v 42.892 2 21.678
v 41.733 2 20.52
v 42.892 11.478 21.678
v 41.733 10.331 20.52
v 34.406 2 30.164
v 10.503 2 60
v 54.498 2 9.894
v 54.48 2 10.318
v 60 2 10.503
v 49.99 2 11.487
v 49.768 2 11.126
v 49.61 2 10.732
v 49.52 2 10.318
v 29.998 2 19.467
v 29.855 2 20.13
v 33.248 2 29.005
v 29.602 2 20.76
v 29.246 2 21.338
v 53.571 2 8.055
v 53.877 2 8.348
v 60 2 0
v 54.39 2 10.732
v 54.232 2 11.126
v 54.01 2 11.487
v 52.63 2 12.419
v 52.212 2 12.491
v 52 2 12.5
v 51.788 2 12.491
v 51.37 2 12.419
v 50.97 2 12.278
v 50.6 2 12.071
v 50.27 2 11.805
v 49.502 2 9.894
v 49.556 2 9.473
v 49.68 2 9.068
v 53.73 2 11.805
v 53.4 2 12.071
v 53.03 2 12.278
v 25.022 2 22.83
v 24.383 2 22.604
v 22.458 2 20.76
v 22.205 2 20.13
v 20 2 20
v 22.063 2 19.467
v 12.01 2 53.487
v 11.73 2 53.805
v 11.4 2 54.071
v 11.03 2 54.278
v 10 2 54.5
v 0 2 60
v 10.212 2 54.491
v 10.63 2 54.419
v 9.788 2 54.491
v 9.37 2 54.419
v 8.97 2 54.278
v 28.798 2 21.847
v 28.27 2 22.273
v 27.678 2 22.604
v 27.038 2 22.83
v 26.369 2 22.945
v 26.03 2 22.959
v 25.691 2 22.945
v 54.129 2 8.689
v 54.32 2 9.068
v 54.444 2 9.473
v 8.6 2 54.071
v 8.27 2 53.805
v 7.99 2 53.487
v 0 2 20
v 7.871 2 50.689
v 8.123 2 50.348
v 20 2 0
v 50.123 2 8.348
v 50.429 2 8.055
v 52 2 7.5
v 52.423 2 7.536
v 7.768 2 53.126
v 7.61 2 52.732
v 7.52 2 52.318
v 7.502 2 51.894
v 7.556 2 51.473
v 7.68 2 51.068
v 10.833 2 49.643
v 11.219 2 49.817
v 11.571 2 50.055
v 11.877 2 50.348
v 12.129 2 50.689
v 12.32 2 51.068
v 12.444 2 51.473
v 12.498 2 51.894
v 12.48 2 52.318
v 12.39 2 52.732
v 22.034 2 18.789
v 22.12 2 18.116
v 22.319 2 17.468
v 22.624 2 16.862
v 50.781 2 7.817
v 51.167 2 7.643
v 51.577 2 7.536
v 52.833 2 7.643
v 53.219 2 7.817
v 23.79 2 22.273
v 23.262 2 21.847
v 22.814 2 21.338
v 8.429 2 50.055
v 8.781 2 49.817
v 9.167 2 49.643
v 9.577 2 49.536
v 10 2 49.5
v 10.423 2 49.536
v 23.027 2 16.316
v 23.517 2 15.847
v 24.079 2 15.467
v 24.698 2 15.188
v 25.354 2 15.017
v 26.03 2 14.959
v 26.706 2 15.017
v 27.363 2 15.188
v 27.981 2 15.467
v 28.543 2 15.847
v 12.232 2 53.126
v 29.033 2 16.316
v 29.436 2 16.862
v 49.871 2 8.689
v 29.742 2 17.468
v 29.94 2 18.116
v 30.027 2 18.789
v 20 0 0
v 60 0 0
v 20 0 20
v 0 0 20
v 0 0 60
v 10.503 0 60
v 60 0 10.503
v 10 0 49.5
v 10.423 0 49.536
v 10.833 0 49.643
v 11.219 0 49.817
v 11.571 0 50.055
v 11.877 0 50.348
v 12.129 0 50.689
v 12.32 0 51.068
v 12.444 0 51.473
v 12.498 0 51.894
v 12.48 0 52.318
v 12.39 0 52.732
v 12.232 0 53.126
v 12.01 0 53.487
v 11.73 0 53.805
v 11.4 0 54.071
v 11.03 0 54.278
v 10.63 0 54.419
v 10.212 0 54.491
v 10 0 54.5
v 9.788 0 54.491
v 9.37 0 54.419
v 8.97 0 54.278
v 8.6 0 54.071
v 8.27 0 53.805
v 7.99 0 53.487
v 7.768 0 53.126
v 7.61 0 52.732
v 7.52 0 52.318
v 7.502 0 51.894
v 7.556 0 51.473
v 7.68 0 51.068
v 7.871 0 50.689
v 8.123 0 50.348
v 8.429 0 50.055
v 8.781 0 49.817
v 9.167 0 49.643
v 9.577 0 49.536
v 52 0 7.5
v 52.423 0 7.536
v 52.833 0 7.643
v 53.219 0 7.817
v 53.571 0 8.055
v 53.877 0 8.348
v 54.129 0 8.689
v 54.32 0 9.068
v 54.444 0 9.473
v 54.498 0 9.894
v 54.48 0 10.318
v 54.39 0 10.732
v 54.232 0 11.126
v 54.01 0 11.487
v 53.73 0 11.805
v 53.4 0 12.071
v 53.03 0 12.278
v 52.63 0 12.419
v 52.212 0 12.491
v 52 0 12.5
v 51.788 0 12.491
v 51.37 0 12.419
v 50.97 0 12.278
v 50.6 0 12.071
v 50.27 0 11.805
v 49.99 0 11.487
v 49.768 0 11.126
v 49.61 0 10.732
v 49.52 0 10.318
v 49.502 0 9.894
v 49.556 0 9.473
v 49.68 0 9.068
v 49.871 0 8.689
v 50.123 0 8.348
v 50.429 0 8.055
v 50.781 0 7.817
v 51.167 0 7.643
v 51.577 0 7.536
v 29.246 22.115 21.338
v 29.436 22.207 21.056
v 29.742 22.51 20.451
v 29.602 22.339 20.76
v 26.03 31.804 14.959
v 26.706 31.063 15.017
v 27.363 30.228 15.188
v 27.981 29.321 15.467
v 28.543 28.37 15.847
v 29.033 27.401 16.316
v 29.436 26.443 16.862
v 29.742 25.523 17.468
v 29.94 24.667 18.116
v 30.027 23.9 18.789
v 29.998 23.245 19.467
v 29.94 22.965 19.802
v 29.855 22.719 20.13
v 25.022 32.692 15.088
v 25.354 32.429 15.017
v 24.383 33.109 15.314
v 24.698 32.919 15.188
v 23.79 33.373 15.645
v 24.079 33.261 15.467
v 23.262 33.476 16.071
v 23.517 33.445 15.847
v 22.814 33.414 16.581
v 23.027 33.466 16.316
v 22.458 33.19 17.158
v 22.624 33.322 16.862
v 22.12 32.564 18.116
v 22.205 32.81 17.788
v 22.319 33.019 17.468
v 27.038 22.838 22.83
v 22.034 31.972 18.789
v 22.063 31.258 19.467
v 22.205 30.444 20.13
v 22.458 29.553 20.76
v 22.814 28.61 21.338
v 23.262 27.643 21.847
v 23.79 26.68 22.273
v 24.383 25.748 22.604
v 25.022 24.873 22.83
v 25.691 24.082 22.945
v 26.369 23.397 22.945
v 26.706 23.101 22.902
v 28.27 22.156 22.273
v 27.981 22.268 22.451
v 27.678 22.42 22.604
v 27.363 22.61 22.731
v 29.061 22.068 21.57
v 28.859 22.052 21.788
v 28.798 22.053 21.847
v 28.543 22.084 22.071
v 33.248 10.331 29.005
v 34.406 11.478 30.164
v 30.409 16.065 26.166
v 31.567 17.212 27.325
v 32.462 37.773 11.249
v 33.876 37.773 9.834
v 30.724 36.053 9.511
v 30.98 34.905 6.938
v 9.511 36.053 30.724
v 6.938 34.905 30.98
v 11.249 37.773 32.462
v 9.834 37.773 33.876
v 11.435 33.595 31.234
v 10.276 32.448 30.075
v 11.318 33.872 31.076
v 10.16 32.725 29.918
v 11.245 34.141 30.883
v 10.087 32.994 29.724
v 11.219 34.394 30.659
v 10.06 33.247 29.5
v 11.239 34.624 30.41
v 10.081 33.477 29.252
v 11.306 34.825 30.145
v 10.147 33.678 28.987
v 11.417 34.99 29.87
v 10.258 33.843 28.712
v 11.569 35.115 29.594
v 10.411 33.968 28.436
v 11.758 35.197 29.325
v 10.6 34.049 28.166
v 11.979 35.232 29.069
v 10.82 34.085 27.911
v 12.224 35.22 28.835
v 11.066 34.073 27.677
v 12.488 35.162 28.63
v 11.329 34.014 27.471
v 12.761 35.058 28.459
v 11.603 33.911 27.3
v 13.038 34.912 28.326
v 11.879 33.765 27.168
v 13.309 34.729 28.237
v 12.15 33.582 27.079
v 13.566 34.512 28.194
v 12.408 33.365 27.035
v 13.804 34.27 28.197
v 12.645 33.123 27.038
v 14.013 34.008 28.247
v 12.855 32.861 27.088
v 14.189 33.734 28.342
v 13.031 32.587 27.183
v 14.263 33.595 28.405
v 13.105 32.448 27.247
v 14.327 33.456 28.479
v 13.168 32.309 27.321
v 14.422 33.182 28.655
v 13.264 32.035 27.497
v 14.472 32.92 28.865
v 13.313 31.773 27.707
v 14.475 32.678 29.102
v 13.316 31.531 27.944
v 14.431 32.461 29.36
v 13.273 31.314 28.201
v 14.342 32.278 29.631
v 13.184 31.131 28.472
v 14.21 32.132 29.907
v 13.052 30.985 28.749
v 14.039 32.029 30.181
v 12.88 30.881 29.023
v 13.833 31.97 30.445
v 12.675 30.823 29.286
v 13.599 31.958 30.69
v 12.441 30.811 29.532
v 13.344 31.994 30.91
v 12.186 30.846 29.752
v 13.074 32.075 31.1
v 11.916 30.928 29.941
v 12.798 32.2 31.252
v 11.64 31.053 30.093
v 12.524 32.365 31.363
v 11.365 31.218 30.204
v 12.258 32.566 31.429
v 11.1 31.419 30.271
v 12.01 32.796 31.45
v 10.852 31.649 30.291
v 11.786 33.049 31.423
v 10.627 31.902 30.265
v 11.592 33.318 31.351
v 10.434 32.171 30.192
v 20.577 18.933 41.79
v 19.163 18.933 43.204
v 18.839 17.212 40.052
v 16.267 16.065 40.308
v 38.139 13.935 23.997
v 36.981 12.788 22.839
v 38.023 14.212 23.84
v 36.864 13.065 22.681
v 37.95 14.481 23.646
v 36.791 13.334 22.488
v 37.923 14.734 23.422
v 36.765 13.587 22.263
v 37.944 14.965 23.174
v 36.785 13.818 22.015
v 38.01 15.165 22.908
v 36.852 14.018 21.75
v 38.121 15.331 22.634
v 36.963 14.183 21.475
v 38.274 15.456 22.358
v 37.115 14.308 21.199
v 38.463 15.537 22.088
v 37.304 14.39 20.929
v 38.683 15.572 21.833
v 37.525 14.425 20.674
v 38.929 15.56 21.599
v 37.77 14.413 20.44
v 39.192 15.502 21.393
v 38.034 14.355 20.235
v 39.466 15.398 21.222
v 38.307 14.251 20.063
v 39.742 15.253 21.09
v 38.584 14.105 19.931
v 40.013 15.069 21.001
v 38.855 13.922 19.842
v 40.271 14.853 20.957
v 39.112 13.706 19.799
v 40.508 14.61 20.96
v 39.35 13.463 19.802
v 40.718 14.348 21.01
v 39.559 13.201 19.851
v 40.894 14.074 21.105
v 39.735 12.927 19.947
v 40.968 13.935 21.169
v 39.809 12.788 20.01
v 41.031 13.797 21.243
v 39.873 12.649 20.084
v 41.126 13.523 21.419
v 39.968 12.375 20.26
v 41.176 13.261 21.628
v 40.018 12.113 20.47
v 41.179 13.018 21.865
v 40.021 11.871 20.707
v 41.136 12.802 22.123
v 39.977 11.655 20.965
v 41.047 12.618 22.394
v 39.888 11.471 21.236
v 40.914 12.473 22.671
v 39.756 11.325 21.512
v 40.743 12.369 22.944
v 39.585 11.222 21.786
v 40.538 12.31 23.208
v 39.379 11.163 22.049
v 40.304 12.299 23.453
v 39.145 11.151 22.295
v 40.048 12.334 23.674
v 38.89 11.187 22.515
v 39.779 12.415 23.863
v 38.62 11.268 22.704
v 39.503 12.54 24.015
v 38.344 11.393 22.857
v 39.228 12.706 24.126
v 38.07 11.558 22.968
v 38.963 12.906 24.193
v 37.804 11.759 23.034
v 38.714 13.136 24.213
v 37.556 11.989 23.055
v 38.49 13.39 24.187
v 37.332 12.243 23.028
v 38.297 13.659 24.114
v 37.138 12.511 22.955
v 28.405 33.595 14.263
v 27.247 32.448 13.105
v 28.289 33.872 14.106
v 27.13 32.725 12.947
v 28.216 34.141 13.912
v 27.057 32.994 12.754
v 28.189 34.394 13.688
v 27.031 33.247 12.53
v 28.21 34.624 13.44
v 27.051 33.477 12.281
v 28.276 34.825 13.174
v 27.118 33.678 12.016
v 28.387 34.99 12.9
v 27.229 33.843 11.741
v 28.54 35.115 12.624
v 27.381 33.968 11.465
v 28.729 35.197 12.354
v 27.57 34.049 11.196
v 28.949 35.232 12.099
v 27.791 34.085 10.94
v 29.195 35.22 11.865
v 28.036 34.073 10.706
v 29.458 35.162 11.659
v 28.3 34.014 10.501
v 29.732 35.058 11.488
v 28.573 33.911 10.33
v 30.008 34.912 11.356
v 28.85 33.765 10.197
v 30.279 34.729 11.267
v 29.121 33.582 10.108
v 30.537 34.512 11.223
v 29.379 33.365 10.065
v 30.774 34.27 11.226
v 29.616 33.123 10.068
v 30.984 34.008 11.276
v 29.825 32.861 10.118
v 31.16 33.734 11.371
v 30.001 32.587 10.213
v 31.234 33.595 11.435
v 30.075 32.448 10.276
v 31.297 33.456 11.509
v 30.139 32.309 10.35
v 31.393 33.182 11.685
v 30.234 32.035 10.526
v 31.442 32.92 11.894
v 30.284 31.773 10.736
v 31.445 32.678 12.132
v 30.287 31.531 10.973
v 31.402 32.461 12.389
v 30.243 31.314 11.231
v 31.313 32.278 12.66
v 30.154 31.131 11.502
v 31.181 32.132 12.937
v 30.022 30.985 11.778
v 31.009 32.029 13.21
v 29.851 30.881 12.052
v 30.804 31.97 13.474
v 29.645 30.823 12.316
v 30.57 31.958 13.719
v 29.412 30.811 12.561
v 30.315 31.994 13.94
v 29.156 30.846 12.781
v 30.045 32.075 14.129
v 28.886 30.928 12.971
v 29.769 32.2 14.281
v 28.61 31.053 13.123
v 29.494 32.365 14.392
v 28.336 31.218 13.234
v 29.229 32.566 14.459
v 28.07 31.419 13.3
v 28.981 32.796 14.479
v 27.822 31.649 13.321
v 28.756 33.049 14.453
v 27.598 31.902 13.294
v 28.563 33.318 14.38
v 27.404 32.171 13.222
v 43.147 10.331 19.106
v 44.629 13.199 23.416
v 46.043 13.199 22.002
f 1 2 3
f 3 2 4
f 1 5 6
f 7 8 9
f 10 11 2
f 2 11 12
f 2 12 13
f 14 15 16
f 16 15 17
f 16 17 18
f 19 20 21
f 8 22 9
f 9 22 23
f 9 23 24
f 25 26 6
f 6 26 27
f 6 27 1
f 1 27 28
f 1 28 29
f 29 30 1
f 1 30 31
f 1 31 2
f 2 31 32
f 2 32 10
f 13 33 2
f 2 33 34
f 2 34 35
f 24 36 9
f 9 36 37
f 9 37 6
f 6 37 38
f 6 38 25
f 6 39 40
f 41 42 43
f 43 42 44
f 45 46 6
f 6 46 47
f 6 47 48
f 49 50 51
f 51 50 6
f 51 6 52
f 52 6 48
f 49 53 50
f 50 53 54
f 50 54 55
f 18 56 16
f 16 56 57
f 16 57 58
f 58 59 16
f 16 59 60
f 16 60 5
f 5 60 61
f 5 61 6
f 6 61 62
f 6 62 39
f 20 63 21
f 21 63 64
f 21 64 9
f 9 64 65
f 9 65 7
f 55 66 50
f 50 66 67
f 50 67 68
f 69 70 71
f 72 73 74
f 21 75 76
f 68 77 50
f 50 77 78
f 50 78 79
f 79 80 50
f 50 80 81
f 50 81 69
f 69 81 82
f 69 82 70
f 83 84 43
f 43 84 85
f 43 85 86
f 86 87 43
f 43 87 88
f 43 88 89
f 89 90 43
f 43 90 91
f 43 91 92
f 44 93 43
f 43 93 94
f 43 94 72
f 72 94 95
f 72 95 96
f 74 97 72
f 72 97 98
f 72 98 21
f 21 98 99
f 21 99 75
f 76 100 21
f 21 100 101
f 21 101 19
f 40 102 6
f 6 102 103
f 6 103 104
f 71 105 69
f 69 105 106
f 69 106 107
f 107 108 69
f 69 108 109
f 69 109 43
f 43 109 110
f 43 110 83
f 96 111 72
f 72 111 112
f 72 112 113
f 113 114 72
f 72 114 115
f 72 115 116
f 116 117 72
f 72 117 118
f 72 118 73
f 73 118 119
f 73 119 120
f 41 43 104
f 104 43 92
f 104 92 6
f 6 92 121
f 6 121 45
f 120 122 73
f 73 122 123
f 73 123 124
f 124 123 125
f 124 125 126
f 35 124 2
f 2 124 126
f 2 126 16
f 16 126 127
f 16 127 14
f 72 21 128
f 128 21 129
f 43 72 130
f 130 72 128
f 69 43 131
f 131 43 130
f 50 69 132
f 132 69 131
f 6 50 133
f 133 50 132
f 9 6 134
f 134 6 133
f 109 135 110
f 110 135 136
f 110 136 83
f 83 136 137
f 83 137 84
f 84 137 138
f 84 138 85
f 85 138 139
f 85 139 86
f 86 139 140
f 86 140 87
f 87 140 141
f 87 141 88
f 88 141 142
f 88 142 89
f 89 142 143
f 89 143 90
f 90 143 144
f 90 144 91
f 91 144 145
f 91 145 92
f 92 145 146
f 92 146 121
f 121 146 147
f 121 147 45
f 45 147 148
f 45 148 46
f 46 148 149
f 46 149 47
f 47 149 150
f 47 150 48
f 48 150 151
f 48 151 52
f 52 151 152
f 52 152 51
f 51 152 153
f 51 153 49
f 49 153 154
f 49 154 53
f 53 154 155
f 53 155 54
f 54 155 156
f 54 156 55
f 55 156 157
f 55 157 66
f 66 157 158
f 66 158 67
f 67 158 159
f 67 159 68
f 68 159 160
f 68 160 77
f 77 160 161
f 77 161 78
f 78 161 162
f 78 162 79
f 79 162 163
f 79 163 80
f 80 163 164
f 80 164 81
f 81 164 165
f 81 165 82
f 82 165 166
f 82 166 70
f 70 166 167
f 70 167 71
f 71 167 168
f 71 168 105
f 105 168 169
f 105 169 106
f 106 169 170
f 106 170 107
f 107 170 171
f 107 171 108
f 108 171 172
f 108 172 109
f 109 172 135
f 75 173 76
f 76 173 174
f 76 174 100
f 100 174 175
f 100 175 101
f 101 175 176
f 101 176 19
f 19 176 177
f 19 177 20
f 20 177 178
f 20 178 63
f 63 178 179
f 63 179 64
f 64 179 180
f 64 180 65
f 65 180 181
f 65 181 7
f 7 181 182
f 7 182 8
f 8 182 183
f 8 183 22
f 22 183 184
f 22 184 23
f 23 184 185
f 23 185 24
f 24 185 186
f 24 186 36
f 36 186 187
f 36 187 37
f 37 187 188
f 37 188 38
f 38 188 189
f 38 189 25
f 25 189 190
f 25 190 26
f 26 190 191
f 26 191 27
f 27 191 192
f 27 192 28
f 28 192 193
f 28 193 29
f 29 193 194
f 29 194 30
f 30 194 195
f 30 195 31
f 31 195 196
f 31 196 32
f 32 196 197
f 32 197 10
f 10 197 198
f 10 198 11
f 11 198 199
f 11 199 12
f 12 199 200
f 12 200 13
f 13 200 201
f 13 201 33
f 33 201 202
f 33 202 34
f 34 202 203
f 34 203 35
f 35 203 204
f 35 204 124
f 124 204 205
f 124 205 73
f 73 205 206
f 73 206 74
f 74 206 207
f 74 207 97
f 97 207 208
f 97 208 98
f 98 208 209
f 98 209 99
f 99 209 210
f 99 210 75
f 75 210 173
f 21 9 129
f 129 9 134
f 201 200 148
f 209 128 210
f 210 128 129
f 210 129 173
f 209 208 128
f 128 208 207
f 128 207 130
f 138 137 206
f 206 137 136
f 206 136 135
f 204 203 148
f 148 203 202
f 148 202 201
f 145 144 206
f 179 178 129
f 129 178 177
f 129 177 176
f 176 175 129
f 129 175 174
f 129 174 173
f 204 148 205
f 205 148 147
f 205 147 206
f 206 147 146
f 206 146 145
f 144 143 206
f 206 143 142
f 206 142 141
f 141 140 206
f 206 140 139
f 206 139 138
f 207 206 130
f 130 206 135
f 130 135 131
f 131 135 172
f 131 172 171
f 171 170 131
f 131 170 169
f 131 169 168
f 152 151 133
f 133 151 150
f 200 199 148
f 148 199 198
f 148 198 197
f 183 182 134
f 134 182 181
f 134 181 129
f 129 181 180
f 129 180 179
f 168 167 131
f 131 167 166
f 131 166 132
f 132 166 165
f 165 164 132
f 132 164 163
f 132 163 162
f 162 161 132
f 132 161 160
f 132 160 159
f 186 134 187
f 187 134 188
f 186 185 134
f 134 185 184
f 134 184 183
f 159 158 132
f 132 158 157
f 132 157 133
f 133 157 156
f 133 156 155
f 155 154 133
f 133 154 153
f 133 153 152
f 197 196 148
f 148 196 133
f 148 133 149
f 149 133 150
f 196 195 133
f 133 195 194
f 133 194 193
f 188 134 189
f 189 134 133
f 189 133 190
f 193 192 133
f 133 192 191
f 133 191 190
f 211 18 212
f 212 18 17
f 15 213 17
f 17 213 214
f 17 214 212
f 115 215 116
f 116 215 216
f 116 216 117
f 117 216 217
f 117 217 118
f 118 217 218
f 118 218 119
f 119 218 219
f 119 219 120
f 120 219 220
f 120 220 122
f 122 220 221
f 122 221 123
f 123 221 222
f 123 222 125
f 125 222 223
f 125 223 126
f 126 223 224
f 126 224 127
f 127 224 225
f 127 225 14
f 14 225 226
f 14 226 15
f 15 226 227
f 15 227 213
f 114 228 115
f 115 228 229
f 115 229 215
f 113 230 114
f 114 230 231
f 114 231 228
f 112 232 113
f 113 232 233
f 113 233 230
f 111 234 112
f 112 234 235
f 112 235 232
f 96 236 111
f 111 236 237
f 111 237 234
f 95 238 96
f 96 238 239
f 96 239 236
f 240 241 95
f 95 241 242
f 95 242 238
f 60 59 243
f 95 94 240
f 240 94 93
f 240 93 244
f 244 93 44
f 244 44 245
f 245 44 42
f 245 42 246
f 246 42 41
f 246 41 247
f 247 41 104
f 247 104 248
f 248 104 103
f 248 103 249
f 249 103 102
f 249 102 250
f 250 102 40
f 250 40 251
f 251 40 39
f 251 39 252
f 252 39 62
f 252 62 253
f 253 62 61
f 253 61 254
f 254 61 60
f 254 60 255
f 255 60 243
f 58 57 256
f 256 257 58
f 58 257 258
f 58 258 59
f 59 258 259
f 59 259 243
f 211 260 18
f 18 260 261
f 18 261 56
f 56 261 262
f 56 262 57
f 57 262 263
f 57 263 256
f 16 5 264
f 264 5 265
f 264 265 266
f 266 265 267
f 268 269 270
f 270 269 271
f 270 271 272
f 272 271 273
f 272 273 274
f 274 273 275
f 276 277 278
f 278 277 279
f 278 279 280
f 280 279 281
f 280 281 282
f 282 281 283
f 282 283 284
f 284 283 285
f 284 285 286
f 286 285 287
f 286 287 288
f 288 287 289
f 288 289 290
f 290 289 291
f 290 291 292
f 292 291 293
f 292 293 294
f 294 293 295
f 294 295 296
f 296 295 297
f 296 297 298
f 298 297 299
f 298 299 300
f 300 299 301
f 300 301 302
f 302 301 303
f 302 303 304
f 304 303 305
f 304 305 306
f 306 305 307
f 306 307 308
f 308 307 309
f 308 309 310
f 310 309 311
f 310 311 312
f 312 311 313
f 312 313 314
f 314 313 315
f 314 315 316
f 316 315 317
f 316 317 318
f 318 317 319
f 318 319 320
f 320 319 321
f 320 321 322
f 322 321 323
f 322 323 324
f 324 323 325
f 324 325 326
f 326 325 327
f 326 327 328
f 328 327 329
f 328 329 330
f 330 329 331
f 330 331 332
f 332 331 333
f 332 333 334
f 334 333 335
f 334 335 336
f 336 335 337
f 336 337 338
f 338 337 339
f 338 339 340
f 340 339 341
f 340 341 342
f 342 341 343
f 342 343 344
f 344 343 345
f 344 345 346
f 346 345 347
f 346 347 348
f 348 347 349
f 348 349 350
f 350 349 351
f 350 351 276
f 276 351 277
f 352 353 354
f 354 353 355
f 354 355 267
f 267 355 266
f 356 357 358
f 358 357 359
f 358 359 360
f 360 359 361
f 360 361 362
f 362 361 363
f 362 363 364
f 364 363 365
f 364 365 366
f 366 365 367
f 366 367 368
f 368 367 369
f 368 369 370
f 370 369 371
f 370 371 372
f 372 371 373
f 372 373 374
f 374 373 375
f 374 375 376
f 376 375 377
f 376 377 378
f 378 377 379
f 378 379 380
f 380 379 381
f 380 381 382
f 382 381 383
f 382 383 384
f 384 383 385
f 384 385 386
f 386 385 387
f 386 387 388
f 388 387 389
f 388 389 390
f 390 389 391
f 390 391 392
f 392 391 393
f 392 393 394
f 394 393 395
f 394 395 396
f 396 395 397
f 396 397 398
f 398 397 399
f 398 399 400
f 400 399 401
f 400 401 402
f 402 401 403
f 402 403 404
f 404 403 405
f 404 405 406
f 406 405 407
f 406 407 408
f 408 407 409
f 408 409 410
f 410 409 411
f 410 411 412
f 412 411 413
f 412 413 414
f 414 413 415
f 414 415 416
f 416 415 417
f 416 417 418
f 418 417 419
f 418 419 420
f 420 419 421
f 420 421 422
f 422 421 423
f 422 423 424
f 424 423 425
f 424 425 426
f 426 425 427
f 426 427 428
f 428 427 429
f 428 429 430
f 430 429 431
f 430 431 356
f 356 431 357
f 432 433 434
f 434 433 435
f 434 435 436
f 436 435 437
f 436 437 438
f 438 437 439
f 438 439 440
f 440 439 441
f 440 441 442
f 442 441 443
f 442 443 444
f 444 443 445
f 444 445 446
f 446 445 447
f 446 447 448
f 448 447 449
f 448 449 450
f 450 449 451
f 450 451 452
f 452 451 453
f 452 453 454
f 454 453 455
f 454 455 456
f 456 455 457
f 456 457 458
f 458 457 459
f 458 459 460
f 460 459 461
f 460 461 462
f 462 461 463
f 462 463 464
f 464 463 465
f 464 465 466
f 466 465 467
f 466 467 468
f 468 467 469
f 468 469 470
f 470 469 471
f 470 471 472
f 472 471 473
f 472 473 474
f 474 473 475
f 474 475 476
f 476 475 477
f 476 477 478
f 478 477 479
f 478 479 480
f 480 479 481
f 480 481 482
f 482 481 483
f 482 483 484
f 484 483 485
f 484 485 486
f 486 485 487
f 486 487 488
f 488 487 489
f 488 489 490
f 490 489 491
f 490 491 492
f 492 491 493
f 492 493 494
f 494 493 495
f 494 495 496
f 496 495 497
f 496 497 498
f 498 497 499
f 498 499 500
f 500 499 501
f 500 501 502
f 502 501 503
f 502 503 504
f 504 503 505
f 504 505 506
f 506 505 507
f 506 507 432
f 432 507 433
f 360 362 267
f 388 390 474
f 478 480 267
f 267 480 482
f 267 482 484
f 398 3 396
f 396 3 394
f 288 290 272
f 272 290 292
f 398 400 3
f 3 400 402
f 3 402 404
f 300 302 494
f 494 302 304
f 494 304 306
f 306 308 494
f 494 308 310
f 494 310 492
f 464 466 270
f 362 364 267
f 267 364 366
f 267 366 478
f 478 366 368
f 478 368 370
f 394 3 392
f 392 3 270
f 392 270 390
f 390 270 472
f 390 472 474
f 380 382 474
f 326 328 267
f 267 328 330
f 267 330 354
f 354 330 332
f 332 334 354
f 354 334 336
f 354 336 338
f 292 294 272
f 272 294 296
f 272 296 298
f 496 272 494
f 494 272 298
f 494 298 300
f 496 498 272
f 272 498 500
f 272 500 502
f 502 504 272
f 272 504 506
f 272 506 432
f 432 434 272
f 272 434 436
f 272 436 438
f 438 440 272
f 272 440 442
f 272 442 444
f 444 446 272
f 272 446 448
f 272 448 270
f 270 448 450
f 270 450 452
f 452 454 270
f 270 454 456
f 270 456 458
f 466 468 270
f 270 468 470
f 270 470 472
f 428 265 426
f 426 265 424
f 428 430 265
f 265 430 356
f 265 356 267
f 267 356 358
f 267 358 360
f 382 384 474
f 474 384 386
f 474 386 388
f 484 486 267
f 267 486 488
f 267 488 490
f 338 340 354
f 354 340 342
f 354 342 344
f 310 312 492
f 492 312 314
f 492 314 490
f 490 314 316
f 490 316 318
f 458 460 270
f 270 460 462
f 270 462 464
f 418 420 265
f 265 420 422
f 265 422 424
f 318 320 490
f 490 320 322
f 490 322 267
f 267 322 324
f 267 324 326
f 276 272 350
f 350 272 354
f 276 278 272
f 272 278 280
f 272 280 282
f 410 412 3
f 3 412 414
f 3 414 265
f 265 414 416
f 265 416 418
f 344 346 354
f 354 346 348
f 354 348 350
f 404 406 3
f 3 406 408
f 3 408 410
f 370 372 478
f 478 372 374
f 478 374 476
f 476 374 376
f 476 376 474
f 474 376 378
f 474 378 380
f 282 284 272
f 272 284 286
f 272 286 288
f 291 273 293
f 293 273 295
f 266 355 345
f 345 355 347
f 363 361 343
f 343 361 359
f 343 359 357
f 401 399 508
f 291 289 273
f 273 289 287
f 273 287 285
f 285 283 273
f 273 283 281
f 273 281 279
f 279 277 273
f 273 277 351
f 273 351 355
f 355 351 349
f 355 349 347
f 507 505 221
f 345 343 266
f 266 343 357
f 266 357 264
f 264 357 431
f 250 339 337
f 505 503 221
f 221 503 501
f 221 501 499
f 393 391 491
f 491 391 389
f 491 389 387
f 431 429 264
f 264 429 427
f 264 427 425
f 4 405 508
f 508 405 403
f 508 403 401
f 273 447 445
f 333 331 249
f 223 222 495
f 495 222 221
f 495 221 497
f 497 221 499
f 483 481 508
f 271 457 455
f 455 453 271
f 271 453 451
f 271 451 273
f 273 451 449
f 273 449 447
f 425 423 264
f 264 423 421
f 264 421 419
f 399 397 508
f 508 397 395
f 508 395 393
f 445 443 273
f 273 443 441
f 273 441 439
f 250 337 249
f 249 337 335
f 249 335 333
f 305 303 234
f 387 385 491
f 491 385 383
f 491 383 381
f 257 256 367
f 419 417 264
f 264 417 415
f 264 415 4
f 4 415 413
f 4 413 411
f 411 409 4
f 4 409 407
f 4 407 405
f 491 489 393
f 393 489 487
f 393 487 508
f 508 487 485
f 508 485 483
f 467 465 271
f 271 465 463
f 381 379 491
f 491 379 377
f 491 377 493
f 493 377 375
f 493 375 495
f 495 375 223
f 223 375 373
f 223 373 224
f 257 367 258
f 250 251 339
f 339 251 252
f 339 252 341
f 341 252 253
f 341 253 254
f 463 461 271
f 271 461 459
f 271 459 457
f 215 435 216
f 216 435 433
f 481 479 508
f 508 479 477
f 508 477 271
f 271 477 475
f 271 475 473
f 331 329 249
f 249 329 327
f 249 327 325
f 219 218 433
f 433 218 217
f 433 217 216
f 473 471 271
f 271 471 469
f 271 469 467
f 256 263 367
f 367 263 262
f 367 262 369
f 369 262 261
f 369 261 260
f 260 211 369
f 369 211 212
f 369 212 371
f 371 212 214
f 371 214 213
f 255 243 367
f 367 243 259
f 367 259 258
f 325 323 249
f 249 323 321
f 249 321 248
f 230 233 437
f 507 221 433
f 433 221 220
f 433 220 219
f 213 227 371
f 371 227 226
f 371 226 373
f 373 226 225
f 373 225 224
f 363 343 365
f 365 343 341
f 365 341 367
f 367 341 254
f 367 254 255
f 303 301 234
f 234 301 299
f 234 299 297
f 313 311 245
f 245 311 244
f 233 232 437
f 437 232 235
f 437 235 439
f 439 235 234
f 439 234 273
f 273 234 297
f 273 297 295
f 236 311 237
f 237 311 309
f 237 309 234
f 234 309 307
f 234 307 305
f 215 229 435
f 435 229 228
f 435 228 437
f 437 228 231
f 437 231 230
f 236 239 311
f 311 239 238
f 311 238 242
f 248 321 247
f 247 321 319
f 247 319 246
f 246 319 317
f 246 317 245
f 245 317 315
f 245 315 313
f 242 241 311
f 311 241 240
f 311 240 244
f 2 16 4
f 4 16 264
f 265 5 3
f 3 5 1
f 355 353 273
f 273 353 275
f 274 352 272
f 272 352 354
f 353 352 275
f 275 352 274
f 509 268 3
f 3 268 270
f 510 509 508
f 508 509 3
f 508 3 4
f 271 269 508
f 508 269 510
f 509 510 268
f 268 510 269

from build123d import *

# Parameters (mm, degrees)
SKETCH_1_R                  = 2.5
EXTRUDE_1_DEPTH             = 2
SKETCH_2_R                  = 2
EXTRUDE_3_DEPTH             = 2
EXTRUDE_4_REACH             = 93.431
SKETCH_4_R                  = 4
EXTRUDE_5_REACH             = 93.431
EXTRUDE_6_REACH             = 56.956
EXTRUDE_6_DIRECTION_2_DEPTH = 3


with BuildPart() as part:
    # 草图1 → 凸台-拉伸1 (new body)
    with BuildSketch(Plane(origin=(0, 0, 0), x_dir=(1, 0, 0), z_dir=(0, 1, 0))):
        Polygon((10.502525317, -60), (60, -10.502525317), (60, 0), (20, 0), (20, -20), (0, -20), (0, -60), align=None)
        with Locations(Location((10, -52, 0), (0, 0, 270))):
            Circle(SKETCH_1_R, mode=Mode.SUBTRACT)
        with Locations(Location((52, -10, 0), (0, 0, 270))):
            Circle(SKETCH_1_R, mode=Mode.SUBTRACT)
    extrude(amount=EXTRUDE_1_DEPTH)



with BuildPart() as body_2:
    # 草图2 → 凸台-拉伸3 (new body)
    with BuildSketch(Plane(origin=(24.318415307, 24.081140456, 24.318415307), x_dir=(-0.7071067811865475, 0, 0.7071067811865476), z_dir=(0.5792279653395701, 0.5735764363510444, 0.57922796533957))):
        Polygon((-3, 16.786030205), (-15, 16.786030205), (-15, -13.213969795), (15, -13.213969795), (15, 9.786030205), (-3, 9.786030205), align=None)
        with Locations(Location((-12, -10.213969795, 0), (0, 0, 180))):
            Circle(SKETCH_2_R, mode=Mode.SUBTRACT)
        with Locations(Location((12, -10.213969795, 0), (0, 0, 180))):
            Circle(SKETCH_2_R, mode=Mode.SUBTRACT)
        with Locations(Location((-12, 13.786030205, 0), (0, 0, 180))):
            Circle(SKETCH_2_R, mode=Mode.SUBTRACT)
    extrude(amount=EXTRUDE_3_DEPTH)


with BuildPart() as part_1:
    add(part.part)

    add(body_2.part)  # 凸台-拉伸4 merges body 2
    # 凸台-拉伸4: up to this plane
    extrude_4_end = Plane(origin=(24.318415307, 24.081140456, 24.318415307), z_dir=(0.5792279653395702, 0.5735764363510445, 0.5792279653395699))
    # 草图4 → 凸台-拉伸4 (add, up to the surface)
    with BuildSketch(Plane(origin=(0, 2, 0), x_dir=(1, 0, 0), z_dir=(0, 1, 0)), mode=Mode.PRIVATE) as extrude_4_sk1:
        with Locations(Location((26.030164055, -18.959096243, 0), (0, 0, 315))):
            Circle(SKETCH_4_R)
    extrude_4_tool1 = split(extrude(extrude_4_sk1.sketch, amount=EXTRUDE_4_REACH, mode=Mode.PRIVATE), bisect_by=extrude_4_end, keep=Keep.BOTH, mode=Mode.PRIVATE)
    add(extrude_4_tool1.solids().sort_by_distance((26.030164, 2, 18.959096))[0])

    # 草图5 → 凸台-拉伸5 (add, up to next)
    with BuildSketch(Plane(origin=(0, 2, 0), x_dir=(1, 0, 0), z_dir=(0, 1, 0)), mode=Mode.PRIVATE) as extrude_5_sk1:
        Polygon((41.733091591, -20.519888156), (33.247810217, -29.00516953), (34.406266148, -30.16362546), (42.891547522, -21.678344086), align=None)
    extrude_5_tool1 = extrude(extrude_5_sk1.sketch, amount=EXTRUDE_5_REACH, mode=Mode.PRIVATE) - part_1.part
    add(extrude_5_tool1.solids().sort_by_distance((38.069679, 2, 25.341757))[0])

    # 凸台-拉伸6: up to this face of the body (flat: up to its plane)
    extrude_6_end = Plane(part_1.part.faces().sort_by_distance((24.757422588, 23.562214363, 24.393270957))[0])
    # 草图6 → 凸台-拉伸6 (add, up to the picked face)
    with BuildSketch(Plane(origin=(25.476871238, 25.228293329, 25.476871238), x_dir=(0.45107473692648714, 0.36633593098762024, -0.8138363271408656), z_dir=(0.5792279653395701, 0.5735764363510444, 0.5792279653395701)), mode=Mode.PRIVATE) as extrude_6_sk1:
        Polygon((-7.506940922, 18.527137818), (-17.792853619, -2.044687575), (-19.581708001, -1.150260384), (-9.295795304, 19.421565009), align=None)
    extrude_6_tool1 = split(extrude(extrude_6_sk1.sketch, amount=-EXTRUDE_6_REACH, mode=Mode.PRIVATE), bisect_by=extrude_6_end, keep=Keep.BOTH, mode=Mode.PRIVATE)
    # 草图6 → 凸台-拉伸6 (add, up to the picked face)
    with BuildSketch(Plane(origin=(25.476871238, 25.228293329, 25.476871238), x_dir=(0.45107473692648714, 0.36633593098762024, -0.8138363271408656), z_dir=(0.5792279653395701, 0.5735764363510444, 0.5792279653395701)), mode=Mode.PRIVATE) as extrude_6_sk2:
        Polygon((19.325874808, 5.110729953), (5.909466943, -21.722085777), (7.698321325, -22.616512968), (21.11472919, 4.216302762), align=None)
    extrude_6_tool2 = split(extrude(extrude_6_sk2.sketch, amount=-EXTRUDE_6_REACH, mode=Mode.PRIVATE), bisect_by=extrude_6_end, keep=Keep.BOTH, mode=Mode.PRIVATE)
    add(extrude_6_tool1.solids().sort_by(Axis((13.468011, 26.632295, 36.095428), (-0.5792279653395701, -0.5735764363510444, -0.5792279653395701)))[0])
    add(extrude_6_tool2.solids().sort_by(Axis((37.514957, 23.765263, 14.88754), (-0.5792279653395701, -0.5735764363510444, -0.5792279653395701)))[0])

    # 草图6 → 凸台-拉伸6 direction 2 (add)
    with BuildSketch(Plane(origin=(25.476871238, 25.228293329, 25.476871238), x_dir=(0.45107473692648714, 0.36633593098762024, -0.8138363271408656), z_dir=(0.5792279653395701, 0.5735764363510444, 0.5792279653395701))):
        Polygon((-7.506940922, 18.527137818), (-17.792853619, -2.044687575), (-19.581708001, -1.150260384), (-9.295795304, 19.421565009), align=None)
        Polygon((19.325874808, 5.110729953), (5.909466943, -21.722085777), (7.698321325, -22.616512968), (21.11472919, 4.216302762), align=None)
    extrude(amount=EXTRUDE_6_DIRECTION_2_DEPTH)


solid = part_1.part
